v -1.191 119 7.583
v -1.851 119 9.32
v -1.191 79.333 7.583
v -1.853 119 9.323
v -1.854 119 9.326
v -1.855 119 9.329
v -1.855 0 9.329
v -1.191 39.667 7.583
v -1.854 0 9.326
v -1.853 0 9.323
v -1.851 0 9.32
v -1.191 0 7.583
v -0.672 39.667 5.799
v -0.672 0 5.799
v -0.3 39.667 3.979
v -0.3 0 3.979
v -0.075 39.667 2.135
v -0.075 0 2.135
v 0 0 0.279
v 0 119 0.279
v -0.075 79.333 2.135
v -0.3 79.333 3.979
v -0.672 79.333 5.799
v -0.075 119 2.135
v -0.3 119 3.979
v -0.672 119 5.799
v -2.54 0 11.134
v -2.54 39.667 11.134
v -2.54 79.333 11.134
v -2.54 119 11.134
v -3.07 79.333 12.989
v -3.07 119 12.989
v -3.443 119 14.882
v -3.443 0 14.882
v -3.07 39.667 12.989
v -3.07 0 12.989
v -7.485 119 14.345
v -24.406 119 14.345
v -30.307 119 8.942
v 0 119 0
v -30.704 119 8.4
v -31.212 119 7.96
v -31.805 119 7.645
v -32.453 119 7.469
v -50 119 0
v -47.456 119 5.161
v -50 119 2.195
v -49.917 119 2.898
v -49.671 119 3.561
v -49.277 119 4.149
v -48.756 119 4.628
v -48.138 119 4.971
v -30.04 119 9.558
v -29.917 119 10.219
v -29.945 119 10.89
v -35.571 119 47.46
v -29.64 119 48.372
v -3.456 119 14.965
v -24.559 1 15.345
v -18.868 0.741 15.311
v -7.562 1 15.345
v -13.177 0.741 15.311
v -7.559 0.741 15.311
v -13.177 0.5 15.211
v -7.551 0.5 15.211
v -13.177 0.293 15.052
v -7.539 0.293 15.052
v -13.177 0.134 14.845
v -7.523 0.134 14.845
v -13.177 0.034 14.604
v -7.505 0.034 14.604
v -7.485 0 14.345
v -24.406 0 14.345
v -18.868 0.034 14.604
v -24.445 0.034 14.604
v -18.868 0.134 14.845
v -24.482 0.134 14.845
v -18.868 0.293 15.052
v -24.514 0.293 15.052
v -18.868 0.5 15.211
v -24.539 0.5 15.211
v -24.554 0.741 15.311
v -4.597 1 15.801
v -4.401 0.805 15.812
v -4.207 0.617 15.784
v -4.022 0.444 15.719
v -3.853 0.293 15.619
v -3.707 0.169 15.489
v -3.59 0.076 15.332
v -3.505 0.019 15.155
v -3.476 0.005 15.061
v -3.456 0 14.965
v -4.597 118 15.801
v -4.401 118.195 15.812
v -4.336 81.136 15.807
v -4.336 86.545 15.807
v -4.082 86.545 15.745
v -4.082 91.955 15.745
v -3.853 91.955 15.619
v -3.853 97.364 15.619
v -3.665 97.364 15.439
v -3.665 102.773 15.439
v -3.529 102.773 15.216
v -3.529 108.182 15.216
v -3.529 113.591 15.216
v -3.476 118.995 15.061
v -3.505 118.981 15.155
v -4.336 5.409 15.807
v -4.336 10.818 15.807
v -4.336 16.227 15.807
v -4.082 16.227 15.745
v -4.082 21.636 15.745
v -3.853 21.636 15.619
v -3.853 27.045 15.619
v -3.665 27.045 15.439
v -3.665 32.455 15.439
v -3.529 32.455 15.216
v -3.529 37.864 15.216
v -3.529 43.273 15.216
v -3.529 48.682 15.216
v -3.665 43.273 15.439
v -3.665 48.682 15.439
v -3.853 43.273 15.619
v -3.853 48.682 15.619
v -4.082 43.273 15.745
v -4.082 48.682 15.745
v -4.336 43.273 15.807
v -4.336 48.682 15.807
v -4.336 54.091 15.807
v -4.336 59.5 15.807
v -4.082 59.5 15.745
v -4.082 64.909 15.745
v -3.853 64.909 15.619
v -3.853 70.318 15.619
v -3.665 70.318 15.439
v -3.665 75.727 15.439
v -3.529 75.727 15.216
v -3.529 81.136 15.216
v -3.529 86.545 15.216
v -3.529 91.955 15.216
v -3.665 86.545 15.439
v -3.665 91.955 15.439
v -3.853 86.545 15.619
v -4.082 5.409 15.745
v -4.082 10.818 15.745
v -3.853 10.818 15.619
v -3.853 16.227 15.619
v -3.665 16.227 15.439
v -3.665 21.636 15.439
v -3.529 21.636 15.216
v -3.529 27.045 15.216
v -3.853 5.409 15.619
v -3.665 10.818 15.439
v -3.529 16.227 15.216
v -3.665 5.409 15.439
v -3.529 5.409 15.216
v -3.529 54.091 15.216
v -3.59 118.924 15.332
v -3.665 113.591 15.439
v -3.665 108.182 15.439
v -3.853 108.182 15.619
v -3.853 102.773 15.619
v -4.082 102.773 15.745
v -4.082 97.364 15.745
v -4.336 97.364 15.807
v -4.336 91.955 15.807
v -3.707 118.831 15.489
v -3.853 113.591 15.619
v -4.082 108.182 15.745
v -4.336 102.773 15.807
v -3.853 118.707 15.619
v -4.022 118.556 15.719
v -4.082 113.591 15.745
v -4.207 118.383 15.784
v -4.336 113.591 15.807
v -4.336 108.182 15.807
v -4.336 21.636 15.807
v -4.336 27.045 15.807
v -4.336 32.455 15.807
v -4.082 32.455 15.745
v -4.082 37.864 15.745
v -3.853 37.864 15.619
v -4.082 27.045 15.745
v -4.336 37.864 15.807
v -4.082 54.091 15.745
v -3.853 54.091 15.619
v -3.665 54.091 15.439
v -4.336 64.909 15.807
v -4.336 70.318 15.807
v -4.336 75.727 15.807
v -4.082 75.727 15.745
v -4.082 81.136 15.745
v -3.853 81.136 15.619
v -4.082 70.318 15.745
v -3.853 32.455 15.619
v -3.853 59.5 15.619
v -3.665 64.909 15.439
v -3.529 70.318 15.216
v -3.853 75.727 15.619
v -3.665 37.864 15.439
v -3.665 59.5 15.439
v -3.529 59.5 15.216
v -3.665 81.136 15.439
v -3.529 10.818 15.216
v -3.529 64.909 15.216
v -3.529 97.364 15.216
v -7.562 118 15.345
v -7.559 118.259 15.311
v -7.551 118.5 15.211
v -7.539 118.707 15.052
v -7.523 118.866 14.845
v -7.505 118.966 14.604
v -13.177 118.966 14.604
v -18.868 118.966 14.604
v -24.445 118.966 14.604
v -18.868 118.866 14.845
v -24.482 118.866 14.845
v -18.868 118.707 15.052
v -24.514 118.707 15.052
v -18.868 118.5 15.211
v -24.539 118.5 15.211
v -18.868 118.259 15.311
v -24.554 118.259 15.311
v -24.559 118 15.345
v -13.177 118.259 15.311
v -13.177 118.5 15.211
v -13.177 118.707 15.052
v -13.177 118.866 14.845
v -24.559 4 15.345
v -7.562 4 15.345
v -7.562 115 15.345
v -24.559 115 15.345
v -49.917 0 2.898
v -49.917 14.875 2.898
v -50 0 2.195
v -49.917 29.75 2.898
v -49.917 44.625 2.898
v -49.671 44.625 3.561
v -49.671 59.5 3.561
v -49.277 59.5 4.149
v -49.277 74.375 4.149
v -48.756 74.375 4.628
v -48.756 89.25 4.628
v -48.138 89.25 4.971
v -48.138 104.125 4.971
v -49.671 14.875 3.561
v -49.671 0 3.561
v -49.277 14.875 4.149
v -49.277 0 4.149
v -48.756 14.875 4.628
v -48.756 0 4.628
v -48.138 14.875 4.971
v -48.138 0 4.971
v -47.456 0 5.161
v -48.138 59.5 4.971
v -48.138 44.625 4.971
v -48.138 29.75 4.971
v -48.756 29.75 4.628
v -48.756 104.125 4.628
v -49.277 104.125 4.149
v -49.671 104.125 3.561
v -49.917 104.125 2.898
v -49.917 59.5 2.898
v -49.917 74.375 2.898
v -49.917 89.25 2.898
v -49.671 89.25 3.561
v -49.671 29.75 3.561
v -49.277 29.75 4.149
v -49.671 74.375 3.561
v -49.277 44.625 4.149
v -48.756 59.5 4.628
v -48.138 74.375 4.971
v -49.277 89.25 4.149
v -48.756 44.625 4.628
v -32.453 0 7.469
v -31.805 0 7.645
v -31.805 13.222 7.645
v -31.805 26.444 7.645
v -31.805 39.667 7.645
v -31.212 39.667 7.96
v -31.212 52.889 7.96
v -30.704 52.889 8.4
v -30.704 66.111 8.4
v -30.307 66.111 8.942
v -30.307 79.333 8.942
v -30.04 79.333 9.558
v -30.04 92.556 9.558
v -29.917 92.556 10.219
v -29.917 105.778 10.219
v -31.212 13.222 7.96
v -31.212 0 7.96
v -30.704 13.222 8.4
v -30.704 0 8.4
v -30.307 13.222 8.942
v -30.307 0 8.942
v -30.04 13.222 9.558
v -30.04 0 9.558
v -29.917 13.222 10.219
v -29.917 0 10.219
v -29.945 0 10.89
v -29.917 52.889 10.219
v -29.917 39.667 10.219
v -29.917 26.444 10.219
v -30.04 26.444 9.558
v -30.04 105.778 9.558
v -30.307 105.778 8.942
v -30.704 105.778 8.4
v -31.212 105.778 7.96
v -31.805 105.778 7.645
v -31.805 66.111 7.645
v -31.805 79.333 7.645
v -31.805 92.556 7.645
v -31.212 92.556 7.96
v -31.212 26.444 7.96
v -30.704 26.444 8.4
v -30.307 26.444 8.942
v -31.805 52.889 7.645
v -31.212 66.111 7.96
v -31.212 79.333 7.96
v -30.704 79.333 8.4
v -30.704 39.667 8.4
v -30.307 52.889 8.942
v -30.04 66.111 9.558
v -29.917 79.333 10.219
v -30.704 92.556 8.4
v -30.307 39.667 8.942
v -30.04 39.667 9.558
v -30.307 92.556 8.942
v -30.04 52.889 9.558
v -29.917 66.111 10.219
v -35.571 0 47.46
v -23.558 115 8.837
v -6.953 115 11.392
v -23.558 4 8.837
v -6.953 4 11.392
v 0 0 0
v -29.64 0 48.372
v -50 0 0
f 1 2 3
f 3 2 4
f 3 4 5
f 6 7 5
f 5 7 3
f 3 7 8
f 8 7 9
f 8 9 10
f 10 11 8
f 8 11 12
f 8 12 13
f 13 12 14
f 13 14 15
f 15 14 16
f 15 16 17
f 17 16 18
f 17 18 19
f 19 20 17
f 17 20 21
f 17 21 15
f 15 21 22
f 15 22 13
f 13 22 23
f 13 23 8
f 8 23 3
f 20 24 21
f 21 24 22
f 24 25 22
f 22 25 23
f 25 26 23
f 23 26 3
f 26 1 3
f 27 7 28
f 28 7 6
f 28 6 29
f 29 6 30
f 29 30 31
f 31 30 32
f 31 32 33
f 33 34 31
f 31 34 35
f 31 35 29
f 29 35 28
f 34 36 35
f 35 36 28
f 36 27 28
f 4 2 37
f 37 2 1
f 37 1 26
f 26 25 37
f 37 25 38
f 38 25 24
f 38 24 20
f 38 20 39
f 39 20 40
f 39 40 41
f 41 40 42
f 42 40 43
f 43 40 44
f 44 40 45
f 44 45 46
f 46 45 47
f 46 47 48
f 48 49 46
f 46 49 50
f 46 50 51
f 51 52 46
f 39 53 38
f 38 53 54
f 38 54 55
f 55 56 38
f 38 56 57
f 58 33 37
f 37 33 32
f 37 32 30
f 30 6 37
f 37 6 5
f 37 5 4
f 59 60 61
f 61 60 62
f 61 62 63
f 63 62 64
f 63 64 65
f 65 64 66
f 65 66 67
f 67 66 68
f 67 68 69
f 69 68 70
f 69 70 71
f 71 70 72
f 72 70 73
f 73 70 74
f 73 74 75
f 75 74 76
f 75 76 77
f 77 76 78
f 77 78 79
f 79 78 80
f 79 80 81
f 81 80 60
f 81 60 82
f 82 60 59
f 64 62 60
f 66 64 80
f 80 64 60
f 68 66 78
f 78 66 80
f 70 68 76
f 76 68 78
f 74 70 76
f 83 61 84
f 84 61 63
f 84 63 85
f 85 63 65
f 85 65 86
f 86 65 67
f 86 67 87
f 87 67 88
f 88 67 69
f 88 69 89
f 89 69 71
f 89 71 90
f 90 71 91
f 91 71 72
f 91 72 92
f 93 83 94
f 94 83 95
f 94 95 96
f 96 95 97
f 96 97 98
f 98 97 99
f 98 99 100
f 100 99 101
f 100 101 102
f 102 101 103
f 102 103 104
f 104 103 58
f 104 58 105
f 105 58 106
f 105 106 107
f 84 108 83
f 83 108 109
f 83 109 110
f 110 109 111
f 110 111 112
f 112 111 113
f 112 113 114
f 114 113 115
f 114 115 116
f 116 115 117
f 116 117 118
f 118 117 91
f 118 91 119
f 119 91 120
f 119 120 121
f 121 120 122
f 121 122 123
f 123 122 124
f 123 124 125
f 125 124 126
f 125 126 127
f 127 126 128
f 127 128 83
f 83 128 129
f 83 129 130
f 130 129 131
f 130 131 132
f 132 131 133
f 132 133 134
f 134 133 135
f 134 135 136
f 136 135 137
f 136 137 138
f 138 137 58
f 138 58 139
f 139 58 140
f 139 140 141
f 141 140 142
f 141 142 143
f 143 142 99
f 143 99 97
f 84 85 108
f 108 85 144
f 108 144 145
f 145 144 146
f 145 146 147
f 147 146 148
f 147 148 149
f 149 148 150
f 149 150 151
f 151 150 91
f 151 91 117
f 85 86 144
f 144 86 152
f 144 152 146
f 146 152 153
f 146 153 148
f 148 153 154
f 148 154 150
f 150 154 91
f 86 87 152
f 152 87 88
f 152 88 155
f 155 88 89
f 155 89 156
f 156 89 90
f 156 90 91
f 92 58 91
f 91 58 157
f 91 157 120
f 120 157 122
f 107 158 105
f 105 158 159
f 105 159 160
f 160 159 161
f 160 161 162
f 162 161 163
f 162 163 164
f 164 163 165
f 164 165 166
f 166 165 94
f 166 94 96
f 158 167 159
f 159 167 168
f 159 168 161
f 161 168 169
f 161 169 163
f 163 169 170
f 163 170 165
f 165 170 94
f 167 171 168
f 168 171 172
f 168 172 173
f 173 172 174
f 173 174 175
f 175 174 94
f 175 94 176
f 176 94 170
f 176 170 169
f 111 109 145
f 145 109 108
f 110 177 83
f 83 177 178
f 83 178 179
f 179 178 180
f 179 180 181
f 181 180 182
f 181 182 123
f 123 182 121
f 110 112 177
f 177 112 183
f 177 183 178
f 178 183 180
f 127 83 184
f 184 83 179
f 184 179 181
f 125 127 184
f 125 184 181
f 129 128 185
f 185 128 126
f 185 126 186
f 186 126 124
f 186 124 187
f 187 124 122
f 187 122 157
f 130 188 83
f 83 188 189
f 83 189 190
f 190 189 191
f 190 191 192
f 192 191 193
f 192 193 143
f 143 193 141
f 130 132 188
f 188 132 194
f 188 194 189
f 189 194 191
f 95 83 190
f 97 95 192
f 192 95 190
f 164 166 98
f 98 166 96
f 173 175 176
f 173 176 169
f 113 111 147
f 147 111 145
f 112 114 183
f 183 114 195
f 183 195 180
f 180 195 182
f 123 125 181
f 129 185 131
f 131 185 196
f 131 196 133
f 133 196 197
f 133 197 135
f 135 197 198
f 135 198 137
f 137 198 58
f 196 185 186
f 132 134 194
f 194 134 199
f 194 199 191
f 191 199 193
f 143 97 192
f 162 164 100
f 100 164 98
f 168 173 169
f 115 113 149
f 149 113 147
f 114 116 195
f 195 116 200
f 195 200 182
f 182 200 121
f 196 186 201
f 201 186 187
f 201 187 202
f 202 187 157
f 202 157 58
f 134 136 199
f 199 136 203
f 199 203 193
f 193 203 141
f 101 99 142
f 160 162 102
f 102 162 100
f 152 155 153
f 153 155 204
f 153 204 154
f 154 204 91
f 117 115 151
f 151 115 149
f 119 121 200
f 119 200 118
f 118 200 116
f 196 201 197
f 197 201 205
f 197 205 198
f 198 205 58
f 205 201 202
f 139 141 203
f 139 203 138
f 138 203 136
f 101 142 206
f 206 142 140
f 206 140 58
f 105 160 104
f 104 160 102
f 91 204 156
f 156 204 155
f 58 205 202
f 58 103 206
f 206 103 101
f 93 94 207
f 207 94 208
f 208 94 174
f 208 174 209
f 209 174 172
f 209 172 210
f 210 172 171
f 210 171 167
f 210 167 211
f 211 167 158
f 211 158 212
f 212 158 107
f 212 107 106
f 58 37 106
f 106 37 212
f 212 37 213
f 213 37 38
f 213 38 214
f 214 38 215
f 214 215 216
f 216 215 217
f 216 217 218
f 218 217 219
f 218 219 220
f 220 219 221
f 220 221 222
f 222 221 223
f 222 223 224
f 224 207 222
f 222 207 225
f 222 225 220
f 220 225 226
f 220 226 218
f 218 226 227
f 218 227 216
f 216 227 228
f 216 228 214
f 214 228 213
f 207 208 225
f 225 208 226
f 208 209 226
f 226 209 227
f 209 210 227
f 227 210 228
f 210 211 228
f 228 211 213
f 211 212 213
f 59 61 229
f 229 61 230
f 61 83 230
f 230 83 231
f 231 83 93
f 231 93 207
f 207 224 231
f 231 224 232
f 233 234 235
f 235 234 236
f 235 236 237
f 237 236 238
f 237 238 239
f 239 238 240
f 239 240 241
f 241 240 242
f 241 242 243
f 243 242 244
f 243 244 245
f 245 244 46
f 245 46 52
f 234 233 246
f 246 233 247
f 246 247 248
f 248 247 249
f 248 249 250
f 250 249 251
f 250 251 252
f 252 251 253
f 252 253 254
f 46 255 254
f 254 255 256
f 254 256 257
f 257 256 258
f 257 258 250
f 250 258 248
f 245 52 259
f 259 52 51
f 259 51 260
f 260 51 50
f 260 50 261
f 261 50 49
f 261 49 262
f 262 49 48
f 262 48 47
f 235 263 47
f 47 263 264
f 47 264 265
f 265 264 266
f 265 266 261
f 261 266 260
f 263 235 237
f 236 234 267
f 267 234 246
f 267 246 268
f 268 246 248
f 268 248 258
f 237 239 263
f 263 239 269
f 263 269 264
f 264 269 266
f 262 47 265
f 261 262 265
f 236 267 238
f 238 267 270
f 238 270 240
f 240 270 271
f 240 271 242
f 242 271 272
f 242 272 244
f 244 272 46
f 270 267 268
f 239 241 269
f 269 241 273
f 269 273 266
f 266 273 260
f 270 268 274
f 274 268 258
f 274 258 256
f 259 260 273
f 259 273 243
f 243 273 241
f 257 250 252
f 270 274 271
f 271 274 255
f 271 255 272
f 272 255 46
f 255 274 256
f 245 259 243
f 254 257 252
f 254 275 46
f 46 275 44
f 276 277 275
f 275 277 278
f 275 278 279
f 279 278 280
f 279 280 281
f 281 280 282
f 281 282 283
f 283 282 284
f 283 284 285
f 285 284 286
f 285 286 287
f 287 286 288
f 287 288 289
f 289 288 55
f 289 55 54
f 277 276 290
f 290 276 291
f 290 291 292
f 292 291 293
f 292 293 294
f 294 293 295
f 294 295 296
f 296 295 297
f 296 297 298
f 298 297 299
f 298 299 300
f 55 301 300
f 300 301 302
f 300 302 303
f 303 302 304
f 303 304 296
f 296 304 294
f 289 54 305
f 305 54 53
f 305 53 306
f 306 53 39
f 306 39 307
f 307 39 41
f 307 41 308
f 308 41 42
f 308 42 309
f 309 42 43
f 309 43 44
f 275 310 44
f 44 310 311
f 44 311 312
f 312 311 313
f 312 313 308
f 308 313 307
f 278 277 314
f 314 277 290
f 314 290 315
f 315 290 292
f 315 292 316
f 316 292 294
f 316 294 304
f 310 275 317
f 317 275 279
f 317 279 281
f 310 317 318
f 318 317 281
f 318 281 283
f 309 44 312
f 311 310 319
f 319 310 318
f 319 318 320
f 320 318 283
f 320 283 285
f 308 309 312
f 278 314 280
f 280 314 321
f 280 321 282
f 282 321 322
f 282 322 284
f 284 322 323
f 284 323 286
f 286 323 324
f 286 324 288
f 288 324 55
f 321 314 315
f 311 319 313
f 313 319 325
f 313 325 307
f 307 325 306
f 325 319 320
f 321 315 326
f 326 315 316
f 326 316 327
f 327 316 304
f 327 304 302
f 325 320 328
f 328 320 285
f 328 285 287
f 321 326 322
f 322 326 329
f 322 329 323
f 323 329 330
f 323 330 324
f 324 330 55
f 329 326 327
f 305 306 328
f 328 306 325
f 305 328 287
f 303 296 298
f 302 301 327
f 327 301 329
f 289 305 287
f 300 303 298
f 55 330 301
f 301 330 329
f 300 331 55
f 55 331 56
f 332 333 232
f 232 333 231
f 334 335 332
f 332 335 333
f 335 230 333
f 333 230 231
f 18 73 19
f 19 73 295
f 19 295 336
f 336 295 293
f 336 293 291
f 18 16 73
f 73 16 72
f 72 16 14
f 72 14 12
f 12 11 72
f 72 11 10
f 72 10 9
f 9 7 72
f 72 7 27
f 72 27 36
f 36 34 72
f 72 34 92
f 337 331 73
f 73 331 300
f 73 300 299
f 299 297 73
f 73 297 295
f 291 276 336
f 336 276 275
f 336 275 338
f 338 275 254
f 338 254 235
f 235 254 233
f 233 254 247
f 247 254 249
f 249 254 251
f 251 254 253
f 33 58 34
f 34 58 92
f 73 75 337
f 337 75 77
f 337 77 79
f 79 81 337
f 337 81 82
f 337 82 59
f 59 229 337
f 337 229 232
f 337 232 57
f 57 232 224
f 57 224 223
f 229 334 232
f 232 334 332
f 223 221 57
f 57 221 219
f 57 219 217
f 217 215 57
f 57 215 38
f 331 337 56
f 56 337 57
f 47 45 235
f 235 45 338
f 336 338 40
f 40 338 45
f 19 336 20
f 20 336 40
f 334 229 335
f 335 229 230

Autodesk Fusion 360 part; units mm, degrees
sketch "Szkic1" plane through (0, 0, 0) normal (0, 1, 0) x (1, 0, 0)
  line L0 (0, 0) -> (-50, 0) construction
  line L1 (-50, 0) -> (-50, -5) construction
  line L2 (-50, -5) -> (0, -5) construction
  line L3 (0, -5) -> (0, 0) construction
  line L4 (-3, -12) -> (-23.5581, -8.8372) construction
  line L5 (-3, -12) -> (0, -5) construction
  line L6 (-50, -5) -> (0, -5)
  line L7 (0, -5) -> (0, 0)
  line L8 (0, 0) -> (-50, 0)
  line L9 (-50, 0) -> (-50, -5)
  line L10 (-3, -12) -> (0, -5)
  line L11 (-3, -12) -> (-23.5581, -8.8372)
  line L12 (-23.5581, -8.8372) -> (-48.5, -5)
  line L13 (-23.5581, -8.8372) -> (-29.6404, -48.3721)
  line L14 (-3, -12) -> (-3.6082, -15.9535)
  line L15 (-6.9535, -11.3918) -> (-7.5617, -15.3453)
  line L16 (-7.5617, -15.3453) -> (-3.6082, -15.9535)
  line L17 (-29.6404, -48.3721) -> (-35.5706, -47.4597)
  line L18 (-35.5706, -47.4597) -> (-29.4884, -7.9249)
  line L19 (-7.5617, -15.3453) -> (-24.5594, -15.3453)
  dimension "d1" = 20.8
  dimension "d2" = 40
  dimension "d3" = 4
  dimension "d4" = 4
  dimension "d5" = 4
  dimension "d6" = 6
extrude "Wyciągnięcie proste1" add sketch "Szkic1" along normal blind 4
extrude "Wyciągnięcie proste2" add sketch "Szkic1" along normal blind 115 contours L6 L7 L8 L9 | L6 L10 L11 L12 | L12 L13 L17 L18 | L11 L14 L15 L16
extrude "Wyciągnięcie proste3" add sketch "Szkic1" along normal blind 4 from surface at 115
fillet "Zaokrąglenie1" radius 3 3 edges at (-50, 59.5, 5) (-48.5, 59.5, 5) (-29.4884, 59.5, 7.9249)
fillet "Zaokrąglenie2" radius 1 5 edges at (-16.0605, 0, 15.3453) (-5.585, 0, 15.6494) (-3.6082, 59.5, 15.9535) (-16.0605, 119, 15.3453) (-5.585, 119, 15.6494)
fillet "Zaokrąglenie3" radius 23 2 edges at (-3, 59.5, 12) (0, 59.5, 5)
